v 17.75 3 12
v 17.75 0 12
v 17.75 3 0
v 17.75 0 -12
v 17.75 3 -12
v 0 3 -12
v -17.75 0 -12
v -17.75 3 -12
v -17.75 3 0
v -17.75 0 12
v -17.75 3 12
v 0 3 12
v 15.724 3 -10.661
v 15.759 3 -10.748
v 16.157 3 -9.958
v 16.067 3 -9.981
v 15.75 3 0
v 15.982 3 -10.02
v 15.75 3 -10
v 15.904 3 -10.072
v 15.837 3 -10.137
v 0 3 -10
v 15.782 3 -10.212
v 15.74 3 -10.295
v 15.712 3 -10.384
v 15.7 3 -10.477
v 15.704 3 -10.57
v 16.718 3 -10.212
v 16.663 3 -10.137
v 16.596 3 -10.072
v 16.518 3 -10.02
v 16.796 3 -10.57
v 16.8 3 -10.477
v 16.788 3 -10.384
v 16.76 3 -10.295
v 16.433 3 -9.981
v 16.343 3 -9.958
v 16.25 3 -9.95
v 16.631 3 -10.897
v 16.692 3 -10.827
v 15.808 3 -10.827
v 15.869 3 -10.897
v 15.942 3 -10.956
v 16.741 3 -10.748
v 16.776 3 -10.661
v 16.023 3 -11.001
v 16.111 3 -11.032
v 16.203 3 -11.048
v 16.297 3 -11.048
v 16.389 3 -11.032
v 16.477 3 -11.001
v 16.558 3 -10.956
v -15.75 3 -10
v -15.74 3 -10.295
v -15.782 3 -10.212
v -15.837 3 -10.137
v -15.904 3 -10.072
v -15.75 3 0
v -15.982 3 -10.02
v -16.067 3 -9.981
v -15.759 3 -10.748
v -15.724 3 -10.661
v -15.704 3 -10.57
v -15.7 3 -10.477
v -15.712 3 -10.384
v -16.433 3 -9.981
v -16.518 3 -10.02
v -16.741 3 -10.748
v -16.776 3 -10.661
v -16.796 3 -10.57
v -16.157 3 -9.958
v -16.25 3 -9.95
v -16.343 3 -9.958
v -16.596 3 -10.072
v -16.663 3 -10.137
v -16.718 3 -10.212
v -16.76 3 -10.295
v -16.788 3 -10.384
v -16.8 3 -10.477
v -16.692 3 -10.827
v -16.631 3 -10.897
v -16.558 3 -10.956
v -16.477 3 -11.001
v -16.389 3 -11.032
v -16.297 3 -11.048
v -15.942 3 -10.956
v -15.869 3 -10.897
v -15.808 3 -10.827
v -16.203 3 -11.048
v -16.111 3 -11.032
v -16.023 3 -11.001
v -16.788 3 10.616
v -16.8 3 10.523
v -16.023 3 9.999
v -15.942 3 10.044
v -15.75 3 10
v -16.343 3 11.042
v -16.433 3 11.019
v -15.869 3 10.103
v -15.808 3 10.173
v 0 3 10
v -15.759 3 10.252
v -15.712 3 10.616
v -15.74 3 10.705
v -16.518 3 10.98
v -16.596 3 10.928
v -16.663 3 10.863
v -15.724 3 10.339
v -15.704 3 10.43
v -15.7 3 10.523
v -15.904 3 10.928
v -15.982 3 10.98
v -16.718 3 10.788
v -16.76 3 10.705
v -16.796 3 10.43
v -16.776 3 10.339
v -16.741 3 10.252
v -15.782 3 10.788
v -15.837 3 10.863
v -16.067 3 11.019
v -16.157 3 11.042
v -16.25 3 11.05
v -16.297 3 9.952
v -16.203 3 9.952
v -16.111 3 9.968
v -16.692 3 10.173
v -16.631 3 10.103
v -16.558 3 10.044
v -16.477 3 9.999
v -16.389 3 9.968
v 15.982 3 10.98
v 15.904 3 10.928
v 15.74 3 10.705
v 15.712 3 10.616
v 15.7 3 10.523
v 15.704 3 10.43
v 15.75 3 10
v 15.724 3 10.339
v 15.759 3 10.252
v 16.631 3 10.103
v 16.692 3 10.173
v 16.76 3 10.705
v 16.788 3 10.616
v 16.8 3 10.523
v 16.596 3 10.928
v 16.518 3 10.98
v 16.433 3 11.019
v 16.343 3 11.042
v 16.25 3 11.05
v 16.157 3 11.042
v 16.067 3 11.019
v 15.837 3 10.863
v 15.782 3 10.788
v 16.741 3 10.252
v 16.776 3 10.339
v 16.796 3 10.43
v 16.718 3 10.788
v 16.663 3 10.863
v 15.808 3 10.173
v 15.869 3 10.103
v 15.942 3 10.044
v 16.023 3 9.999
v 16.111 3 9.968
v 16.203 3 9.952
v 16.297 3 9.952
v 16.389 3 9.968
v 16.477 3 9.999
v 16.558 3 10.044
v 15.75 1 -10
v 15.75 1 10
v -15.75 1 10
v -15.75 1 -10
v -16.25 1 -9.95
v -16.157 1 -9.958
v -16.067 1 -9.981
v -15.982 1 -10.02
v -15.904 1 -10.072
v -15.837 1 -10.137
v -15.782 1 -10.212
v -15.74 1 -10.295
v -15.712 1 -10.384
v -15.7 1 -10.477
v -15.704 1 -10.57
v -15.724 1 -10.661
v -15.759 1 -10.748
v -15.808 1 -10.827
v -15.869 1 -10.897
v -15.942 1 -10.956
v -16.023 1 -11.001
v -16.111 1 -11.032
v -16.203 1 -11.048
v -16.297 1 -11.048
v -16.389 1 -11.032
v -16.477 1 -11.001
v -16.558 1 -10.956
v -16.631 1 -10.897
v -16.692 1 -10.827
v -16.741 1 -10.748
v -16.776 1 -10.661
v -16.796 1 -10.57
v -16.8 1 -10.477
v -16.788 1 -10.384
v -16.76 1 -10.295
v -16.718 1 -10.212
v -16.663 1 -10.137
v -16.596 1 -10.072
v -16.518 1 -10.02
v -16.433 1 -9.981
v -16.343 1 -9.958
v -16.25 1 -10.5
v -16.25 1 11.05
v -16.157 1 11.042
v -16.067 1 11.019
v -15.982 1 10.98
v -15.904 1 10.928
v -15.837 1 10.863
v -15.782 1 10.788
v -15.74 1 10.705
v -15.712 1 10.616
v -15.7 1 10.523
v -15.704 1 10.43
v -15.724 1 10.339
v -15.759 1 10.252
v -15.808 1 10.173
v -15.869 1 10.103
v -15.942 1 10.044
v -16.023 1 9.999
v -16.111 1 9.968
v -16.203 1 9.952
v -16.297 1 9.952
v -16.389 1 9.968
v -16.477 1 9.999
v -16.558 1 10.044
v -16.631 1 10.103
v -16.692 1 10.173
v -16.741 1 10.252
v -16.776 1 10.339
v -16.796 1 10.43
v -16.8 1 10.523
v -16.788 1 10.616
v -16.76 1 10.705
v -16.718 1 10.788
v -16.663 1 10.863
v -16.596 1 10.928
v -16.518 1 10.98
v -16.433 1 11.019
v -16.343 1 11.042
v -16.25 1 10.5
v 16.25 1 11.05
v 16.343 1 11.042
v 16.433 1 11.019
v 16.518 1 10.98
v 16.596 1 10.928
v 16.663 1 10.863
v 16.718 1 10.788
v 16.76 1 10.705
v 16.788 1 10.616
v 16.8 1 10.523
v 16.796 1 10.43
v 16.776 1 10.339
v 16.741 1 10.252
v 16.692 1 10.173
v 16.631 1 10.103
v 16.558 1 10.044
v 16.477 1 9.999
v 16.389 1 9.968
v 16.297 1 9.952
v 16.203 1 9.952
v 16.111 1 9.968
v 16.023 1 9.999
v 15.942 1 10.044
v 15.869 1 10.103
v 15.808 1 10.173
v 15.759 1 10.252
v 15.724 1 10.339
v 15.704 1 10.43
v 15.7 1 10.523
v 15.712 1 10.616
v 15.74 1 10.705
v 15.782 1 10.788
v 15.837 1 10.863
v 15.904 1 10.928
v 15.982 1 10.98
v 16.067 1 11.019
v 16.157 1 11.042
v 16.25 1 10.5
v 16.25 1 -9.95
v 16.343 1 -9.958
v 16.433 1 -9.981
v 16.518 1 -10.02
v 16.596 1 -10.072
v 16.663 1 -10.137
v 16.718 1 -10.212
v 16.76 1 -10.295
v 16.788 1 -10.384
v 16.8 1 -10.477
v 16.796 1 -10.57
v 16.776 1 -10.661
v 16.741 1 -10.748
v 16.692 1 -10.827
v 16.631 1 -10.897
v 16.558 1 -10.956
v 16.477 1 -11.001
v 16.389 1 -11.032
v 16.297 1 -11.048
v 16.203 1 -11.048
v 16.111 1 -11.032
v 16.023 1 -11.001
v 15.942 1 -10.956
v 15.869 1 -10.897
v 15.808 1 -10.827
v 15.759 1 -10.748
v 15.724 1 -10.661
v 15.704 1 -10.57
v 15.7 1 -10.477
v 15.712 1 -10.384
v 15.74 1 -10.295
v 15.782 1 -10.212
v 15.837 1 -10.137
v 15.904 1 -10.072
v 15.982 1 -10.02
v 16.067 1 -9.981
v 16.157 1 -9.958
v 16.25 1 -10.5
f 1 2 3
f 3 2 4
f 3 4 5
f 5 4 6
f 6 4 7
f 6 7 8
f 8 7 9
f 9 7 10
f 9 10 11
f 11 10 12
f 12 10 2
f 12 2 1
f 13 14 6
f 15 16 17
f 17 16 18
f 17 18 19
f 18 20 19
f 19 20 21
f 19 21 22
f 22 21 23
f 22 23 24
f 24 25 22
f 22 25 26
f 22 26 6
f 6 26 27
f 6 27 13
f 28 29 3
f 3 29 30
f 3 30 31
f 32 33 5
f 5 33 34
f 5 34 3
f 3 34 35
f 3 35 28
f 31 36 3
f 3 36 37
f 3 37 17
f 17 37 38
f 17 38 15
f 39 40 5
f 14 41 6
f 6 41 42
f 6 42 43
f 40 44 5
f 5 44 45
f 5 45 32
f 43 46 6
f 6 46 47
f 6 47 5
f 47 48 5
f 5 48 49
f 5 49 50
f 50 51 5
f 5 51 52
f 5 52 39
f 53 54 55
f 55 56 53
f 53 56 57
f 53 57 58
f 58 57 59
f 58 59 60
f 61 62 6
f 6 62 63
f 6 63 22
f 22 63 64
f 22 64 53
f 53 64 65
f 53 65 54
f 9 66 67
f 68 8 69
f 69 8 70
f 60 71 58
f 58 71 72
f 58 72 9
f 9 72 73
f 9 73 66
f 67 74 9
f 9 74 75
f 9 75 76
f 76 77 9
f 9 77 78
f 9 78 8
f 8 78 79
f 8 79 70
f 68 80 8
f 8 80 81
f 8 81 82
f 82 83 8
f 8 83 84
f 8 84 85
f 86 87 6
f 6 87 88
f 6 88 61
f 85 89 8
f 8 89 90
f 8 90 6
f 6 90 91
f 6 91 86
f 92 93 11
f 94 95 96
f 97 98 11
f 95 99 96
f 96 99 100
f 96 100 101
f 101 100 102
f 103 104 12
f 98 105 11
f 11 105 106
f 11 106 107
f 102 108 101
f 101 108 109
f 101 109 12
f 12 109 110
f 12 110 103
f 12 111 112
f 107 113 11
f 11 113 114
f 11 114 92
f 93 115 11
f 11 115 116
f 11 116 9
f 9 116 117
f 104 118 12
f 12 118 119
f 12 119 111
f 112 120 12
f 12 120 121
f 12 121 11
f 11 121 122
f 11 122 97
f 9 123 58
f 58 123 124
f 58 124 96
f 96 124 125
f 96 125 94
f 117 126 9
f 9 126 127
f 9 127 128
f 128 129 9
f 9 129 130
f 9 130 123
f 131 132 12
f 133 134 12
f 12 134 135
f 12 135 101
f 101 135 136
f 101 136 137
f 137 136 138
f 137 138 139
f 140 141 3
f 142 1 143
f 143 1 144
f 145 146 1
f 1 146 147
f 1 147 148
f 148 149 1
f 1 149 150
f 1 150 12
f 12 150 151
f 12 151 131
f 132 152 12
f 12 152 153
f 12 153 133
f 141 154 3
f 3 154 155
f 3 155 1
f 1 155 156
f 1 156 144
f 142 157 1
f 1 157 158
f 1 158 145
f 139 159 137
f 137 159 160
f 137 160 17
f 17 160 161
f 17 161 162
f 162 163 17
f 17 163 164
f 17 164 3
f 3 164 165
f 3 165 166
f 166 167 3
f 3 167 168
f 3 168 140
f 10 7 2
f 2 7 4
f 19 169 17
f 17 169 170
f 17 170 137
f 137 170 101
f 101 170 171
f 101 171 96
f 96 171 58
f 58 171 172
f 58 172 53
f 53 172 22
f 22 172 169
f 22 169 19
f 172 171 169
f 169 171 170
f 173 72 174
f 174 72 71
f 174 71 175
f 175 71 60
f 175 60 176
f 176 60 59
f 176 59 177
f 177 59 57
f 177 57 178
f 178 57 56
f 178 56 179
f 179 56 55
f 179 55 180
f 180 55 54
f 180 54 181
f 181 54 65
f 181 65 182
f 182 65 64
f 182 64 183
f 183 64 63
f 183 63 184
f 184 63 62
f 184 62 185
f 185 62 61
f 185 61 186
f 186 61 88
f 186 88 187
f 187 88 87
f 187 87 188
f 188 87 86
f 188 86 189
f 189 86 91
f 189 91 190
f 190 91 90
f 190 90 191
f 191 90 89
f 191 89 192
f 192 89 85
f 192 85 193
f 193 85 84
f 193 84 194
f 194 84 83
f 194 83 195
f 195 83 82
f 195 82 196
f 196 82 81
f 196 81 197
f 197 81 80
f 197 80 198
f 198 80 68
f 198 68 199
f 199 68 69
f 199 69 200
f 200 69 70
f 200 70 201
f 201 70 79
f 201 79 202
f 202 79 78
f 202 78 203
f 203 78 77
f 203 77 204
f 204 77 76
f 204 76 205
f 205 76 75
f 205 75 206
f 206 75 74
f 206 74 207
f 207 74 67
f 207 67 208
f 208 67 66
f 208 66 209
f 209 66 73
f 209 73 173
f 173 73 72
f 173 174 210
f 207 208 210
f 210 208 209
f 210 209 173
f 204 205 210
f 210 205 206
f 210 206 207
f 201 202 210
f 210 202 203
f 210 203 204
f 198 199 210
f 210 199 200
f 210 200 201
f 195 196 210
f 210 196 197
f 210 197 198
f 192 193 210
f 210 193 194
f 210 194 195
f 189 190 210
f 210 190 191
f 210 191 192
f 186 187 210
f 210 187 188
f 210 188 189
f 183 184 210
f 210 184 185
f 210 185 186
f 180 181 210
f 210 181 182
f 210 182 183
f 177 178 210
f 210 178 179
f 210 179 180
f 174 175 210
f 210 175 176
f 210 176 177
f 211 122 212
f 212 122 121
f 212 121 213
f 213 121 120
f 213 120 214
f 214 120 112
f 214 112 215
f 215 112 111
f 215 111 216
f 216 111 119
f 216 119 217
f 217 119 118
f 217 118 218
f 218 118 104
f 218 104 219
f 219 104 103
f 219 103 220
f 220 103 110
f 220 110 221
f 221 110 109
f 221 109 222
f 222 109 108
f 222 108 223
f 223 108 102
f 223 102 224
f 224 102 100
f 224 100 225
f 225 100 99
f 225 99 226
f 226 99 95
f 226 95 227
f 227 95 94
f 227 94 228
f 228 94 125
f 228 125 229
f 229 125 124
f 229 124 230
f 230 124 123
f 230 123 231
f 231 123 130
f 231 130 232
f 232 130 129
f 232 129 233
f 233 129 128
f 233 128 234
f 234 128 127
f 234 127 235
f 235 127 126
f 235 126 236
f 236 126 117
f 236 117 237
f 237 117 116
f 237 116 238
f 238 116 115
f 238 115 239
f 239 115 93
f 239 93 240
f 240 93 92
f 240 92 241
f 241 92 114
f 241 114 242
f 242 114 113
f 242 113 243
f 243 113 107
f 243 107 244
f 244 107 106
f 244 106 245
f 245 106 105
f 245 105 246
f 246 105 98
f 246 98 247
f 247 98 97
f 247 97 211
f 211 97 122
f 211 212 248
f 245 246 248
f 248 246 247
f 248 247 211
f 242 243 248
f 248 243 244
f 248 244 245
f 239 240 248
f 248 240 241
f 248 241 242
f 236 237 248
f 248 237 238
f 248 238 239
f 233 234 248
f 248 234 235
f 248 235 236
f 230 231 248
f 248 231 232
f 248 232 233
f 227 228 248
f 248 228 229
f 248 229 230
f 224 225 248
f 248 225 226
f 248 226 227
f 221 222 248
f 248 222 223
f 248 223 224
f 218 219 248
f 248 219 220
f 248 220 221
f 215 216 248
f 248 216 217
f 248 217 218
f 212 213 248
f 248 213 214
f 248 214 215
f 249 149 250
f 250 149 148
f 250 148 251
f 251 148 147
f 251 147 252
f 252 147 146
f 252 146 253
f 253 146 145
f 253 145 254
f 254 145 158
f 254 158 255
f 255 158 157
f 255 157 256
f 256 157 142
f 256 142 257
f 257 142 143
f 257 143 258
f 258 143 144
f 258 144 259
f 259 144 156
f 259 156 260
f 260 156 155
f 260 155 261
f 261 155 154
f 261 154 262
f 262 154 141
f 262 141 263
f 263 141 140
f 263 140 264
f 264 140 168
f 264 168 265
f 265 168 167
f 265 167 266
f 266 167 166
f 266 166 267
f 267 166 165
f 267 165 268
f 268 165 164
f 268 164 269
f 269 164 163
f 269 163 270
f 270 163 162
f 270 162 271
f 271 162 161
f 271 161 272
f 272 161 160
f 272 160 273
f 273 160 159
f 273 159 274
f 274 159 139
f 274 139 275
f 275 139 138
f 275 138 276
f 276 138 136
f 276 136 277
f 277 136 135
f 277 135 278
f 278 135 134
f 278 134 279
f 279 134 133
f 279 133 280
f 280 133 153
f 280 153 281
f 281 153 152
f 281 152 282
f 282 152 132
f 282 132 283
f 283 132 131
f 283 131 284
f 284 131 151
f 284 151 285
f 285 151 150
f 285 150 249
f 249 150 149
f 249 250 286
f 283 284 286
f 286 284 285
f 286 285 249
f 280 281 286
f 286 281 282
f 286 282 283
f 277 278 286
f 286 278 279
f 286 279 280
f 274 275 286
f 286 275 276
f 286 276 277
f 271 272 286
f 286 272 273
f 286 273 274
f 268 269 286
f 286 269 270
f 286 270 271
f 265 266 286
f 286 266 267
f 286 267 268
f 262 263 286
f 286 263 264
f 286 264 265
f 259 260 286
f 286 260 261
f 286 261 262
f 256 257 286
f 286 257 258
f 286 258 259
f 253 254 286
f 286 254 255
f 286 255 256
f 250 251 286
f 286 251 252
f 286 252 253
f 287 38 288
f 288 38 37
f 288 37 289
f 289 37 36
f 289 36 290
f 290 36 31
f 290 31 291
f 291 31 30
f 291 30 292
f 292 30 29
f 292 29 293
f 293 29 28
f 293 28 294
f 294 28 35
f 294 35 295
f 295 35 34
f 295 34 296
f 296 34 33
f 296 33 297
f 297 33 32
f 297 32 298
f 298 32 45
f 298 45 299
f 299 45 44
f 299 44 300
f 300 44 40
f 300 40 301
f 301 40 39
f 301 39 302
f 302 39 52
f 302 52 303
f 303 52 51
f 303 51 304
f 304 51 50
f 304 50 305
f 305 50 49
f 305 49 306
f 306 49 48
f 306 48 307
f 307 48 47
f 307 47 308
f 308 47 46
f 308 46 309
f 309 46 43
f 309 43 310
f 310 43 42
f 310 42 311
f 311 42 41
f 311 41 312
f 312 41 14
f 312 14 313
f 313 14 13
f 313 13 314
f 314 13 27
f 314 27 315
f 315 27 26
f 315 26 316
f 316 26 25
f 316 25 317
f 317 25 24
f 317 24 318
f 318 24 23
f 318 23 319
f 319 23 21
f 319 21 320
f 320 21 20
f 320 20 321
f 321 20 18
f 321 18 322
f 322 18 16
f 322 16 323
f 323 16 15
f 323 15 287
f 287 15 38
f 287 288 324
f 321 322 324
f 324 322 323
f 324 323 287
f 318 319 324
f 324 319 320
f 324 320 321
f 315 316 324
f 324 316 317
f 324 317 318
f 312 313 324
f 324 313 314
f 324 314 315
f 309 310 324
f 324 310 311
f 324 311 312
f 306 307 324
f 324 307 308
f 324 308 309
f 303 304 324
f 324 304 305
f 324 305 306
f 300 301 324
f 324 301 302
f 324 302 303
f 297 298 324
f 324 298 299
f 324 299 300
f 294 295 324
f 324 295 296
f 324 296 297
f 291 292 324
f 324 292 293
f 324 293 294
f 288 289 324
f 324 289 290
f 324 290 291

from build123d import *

# Parameters (mm, degrees)
SKETCH_1_W          = 35.5
SKETCH_1_H          = 24
EXTRUDE_1_DEPTH     = 3
SKETCH_2_W          = 31.5
SKETCH_2_H          = 20
CUT_EXTRUDE_1_DEPTH = 2
SKETCH_3_R          = 0.55
CUT_EXTRUDE_2_DEPTH = 2


with BuildPart() as part:
    # 草图1 → 凸台-拉伸1 (new body)
    with BuildSketch(Plane(origin=(0, 0, 0), x_dir=(1, 0, 0), z_dir=(0, 1, 0))):
        Rectangle(SKETCH_1_W, SKETCH_1_H)
    extrude(amount=EXTRUDE_1_DEPTH)

    # 草图2 → 切除-拉伸1 (cut)
    with BuildSketch(Plane(origin=(0, 3, 0), x_dir=(1, 0, 0), z_dir=(0, 1, 0))):
        Rectangle(SKETCH_2_W, SKETCH_2_H)
    extrude(amount=-CUT_EXTRUDE_1_DEPTH, mode=Mode.SUBTRACT)

    # 草图3 → 切除-拉伸2 (cut)
    with BuildSketch(Plane(origin=(0, 3, 0), x_dir=(1, 0, 0), z_dir=(0, 1, 0))):
        with Locations(Location((-16.25, 10.5, 0), (0, 0, 270))):
            Circle(SKETCH_3_R)
        with Locations(Location((-16.25, -10.5, 0), (0, 0, 270))):
            Circle(SKETCH_3_R)
        with Locations(Location((16.25, -10.5, 0), (0, 0, 270))):
            Circle(SKETCH_3_R)
        with Locations(Location((16.25, 10.5, 0), (0, 0, 270))):
            Circle(SKETCH_3_R)
    extrude(amount=-CUT_EXTRUDE_2_DEPTH, mode=Mode.SUBTRACT)


solid = part.part
